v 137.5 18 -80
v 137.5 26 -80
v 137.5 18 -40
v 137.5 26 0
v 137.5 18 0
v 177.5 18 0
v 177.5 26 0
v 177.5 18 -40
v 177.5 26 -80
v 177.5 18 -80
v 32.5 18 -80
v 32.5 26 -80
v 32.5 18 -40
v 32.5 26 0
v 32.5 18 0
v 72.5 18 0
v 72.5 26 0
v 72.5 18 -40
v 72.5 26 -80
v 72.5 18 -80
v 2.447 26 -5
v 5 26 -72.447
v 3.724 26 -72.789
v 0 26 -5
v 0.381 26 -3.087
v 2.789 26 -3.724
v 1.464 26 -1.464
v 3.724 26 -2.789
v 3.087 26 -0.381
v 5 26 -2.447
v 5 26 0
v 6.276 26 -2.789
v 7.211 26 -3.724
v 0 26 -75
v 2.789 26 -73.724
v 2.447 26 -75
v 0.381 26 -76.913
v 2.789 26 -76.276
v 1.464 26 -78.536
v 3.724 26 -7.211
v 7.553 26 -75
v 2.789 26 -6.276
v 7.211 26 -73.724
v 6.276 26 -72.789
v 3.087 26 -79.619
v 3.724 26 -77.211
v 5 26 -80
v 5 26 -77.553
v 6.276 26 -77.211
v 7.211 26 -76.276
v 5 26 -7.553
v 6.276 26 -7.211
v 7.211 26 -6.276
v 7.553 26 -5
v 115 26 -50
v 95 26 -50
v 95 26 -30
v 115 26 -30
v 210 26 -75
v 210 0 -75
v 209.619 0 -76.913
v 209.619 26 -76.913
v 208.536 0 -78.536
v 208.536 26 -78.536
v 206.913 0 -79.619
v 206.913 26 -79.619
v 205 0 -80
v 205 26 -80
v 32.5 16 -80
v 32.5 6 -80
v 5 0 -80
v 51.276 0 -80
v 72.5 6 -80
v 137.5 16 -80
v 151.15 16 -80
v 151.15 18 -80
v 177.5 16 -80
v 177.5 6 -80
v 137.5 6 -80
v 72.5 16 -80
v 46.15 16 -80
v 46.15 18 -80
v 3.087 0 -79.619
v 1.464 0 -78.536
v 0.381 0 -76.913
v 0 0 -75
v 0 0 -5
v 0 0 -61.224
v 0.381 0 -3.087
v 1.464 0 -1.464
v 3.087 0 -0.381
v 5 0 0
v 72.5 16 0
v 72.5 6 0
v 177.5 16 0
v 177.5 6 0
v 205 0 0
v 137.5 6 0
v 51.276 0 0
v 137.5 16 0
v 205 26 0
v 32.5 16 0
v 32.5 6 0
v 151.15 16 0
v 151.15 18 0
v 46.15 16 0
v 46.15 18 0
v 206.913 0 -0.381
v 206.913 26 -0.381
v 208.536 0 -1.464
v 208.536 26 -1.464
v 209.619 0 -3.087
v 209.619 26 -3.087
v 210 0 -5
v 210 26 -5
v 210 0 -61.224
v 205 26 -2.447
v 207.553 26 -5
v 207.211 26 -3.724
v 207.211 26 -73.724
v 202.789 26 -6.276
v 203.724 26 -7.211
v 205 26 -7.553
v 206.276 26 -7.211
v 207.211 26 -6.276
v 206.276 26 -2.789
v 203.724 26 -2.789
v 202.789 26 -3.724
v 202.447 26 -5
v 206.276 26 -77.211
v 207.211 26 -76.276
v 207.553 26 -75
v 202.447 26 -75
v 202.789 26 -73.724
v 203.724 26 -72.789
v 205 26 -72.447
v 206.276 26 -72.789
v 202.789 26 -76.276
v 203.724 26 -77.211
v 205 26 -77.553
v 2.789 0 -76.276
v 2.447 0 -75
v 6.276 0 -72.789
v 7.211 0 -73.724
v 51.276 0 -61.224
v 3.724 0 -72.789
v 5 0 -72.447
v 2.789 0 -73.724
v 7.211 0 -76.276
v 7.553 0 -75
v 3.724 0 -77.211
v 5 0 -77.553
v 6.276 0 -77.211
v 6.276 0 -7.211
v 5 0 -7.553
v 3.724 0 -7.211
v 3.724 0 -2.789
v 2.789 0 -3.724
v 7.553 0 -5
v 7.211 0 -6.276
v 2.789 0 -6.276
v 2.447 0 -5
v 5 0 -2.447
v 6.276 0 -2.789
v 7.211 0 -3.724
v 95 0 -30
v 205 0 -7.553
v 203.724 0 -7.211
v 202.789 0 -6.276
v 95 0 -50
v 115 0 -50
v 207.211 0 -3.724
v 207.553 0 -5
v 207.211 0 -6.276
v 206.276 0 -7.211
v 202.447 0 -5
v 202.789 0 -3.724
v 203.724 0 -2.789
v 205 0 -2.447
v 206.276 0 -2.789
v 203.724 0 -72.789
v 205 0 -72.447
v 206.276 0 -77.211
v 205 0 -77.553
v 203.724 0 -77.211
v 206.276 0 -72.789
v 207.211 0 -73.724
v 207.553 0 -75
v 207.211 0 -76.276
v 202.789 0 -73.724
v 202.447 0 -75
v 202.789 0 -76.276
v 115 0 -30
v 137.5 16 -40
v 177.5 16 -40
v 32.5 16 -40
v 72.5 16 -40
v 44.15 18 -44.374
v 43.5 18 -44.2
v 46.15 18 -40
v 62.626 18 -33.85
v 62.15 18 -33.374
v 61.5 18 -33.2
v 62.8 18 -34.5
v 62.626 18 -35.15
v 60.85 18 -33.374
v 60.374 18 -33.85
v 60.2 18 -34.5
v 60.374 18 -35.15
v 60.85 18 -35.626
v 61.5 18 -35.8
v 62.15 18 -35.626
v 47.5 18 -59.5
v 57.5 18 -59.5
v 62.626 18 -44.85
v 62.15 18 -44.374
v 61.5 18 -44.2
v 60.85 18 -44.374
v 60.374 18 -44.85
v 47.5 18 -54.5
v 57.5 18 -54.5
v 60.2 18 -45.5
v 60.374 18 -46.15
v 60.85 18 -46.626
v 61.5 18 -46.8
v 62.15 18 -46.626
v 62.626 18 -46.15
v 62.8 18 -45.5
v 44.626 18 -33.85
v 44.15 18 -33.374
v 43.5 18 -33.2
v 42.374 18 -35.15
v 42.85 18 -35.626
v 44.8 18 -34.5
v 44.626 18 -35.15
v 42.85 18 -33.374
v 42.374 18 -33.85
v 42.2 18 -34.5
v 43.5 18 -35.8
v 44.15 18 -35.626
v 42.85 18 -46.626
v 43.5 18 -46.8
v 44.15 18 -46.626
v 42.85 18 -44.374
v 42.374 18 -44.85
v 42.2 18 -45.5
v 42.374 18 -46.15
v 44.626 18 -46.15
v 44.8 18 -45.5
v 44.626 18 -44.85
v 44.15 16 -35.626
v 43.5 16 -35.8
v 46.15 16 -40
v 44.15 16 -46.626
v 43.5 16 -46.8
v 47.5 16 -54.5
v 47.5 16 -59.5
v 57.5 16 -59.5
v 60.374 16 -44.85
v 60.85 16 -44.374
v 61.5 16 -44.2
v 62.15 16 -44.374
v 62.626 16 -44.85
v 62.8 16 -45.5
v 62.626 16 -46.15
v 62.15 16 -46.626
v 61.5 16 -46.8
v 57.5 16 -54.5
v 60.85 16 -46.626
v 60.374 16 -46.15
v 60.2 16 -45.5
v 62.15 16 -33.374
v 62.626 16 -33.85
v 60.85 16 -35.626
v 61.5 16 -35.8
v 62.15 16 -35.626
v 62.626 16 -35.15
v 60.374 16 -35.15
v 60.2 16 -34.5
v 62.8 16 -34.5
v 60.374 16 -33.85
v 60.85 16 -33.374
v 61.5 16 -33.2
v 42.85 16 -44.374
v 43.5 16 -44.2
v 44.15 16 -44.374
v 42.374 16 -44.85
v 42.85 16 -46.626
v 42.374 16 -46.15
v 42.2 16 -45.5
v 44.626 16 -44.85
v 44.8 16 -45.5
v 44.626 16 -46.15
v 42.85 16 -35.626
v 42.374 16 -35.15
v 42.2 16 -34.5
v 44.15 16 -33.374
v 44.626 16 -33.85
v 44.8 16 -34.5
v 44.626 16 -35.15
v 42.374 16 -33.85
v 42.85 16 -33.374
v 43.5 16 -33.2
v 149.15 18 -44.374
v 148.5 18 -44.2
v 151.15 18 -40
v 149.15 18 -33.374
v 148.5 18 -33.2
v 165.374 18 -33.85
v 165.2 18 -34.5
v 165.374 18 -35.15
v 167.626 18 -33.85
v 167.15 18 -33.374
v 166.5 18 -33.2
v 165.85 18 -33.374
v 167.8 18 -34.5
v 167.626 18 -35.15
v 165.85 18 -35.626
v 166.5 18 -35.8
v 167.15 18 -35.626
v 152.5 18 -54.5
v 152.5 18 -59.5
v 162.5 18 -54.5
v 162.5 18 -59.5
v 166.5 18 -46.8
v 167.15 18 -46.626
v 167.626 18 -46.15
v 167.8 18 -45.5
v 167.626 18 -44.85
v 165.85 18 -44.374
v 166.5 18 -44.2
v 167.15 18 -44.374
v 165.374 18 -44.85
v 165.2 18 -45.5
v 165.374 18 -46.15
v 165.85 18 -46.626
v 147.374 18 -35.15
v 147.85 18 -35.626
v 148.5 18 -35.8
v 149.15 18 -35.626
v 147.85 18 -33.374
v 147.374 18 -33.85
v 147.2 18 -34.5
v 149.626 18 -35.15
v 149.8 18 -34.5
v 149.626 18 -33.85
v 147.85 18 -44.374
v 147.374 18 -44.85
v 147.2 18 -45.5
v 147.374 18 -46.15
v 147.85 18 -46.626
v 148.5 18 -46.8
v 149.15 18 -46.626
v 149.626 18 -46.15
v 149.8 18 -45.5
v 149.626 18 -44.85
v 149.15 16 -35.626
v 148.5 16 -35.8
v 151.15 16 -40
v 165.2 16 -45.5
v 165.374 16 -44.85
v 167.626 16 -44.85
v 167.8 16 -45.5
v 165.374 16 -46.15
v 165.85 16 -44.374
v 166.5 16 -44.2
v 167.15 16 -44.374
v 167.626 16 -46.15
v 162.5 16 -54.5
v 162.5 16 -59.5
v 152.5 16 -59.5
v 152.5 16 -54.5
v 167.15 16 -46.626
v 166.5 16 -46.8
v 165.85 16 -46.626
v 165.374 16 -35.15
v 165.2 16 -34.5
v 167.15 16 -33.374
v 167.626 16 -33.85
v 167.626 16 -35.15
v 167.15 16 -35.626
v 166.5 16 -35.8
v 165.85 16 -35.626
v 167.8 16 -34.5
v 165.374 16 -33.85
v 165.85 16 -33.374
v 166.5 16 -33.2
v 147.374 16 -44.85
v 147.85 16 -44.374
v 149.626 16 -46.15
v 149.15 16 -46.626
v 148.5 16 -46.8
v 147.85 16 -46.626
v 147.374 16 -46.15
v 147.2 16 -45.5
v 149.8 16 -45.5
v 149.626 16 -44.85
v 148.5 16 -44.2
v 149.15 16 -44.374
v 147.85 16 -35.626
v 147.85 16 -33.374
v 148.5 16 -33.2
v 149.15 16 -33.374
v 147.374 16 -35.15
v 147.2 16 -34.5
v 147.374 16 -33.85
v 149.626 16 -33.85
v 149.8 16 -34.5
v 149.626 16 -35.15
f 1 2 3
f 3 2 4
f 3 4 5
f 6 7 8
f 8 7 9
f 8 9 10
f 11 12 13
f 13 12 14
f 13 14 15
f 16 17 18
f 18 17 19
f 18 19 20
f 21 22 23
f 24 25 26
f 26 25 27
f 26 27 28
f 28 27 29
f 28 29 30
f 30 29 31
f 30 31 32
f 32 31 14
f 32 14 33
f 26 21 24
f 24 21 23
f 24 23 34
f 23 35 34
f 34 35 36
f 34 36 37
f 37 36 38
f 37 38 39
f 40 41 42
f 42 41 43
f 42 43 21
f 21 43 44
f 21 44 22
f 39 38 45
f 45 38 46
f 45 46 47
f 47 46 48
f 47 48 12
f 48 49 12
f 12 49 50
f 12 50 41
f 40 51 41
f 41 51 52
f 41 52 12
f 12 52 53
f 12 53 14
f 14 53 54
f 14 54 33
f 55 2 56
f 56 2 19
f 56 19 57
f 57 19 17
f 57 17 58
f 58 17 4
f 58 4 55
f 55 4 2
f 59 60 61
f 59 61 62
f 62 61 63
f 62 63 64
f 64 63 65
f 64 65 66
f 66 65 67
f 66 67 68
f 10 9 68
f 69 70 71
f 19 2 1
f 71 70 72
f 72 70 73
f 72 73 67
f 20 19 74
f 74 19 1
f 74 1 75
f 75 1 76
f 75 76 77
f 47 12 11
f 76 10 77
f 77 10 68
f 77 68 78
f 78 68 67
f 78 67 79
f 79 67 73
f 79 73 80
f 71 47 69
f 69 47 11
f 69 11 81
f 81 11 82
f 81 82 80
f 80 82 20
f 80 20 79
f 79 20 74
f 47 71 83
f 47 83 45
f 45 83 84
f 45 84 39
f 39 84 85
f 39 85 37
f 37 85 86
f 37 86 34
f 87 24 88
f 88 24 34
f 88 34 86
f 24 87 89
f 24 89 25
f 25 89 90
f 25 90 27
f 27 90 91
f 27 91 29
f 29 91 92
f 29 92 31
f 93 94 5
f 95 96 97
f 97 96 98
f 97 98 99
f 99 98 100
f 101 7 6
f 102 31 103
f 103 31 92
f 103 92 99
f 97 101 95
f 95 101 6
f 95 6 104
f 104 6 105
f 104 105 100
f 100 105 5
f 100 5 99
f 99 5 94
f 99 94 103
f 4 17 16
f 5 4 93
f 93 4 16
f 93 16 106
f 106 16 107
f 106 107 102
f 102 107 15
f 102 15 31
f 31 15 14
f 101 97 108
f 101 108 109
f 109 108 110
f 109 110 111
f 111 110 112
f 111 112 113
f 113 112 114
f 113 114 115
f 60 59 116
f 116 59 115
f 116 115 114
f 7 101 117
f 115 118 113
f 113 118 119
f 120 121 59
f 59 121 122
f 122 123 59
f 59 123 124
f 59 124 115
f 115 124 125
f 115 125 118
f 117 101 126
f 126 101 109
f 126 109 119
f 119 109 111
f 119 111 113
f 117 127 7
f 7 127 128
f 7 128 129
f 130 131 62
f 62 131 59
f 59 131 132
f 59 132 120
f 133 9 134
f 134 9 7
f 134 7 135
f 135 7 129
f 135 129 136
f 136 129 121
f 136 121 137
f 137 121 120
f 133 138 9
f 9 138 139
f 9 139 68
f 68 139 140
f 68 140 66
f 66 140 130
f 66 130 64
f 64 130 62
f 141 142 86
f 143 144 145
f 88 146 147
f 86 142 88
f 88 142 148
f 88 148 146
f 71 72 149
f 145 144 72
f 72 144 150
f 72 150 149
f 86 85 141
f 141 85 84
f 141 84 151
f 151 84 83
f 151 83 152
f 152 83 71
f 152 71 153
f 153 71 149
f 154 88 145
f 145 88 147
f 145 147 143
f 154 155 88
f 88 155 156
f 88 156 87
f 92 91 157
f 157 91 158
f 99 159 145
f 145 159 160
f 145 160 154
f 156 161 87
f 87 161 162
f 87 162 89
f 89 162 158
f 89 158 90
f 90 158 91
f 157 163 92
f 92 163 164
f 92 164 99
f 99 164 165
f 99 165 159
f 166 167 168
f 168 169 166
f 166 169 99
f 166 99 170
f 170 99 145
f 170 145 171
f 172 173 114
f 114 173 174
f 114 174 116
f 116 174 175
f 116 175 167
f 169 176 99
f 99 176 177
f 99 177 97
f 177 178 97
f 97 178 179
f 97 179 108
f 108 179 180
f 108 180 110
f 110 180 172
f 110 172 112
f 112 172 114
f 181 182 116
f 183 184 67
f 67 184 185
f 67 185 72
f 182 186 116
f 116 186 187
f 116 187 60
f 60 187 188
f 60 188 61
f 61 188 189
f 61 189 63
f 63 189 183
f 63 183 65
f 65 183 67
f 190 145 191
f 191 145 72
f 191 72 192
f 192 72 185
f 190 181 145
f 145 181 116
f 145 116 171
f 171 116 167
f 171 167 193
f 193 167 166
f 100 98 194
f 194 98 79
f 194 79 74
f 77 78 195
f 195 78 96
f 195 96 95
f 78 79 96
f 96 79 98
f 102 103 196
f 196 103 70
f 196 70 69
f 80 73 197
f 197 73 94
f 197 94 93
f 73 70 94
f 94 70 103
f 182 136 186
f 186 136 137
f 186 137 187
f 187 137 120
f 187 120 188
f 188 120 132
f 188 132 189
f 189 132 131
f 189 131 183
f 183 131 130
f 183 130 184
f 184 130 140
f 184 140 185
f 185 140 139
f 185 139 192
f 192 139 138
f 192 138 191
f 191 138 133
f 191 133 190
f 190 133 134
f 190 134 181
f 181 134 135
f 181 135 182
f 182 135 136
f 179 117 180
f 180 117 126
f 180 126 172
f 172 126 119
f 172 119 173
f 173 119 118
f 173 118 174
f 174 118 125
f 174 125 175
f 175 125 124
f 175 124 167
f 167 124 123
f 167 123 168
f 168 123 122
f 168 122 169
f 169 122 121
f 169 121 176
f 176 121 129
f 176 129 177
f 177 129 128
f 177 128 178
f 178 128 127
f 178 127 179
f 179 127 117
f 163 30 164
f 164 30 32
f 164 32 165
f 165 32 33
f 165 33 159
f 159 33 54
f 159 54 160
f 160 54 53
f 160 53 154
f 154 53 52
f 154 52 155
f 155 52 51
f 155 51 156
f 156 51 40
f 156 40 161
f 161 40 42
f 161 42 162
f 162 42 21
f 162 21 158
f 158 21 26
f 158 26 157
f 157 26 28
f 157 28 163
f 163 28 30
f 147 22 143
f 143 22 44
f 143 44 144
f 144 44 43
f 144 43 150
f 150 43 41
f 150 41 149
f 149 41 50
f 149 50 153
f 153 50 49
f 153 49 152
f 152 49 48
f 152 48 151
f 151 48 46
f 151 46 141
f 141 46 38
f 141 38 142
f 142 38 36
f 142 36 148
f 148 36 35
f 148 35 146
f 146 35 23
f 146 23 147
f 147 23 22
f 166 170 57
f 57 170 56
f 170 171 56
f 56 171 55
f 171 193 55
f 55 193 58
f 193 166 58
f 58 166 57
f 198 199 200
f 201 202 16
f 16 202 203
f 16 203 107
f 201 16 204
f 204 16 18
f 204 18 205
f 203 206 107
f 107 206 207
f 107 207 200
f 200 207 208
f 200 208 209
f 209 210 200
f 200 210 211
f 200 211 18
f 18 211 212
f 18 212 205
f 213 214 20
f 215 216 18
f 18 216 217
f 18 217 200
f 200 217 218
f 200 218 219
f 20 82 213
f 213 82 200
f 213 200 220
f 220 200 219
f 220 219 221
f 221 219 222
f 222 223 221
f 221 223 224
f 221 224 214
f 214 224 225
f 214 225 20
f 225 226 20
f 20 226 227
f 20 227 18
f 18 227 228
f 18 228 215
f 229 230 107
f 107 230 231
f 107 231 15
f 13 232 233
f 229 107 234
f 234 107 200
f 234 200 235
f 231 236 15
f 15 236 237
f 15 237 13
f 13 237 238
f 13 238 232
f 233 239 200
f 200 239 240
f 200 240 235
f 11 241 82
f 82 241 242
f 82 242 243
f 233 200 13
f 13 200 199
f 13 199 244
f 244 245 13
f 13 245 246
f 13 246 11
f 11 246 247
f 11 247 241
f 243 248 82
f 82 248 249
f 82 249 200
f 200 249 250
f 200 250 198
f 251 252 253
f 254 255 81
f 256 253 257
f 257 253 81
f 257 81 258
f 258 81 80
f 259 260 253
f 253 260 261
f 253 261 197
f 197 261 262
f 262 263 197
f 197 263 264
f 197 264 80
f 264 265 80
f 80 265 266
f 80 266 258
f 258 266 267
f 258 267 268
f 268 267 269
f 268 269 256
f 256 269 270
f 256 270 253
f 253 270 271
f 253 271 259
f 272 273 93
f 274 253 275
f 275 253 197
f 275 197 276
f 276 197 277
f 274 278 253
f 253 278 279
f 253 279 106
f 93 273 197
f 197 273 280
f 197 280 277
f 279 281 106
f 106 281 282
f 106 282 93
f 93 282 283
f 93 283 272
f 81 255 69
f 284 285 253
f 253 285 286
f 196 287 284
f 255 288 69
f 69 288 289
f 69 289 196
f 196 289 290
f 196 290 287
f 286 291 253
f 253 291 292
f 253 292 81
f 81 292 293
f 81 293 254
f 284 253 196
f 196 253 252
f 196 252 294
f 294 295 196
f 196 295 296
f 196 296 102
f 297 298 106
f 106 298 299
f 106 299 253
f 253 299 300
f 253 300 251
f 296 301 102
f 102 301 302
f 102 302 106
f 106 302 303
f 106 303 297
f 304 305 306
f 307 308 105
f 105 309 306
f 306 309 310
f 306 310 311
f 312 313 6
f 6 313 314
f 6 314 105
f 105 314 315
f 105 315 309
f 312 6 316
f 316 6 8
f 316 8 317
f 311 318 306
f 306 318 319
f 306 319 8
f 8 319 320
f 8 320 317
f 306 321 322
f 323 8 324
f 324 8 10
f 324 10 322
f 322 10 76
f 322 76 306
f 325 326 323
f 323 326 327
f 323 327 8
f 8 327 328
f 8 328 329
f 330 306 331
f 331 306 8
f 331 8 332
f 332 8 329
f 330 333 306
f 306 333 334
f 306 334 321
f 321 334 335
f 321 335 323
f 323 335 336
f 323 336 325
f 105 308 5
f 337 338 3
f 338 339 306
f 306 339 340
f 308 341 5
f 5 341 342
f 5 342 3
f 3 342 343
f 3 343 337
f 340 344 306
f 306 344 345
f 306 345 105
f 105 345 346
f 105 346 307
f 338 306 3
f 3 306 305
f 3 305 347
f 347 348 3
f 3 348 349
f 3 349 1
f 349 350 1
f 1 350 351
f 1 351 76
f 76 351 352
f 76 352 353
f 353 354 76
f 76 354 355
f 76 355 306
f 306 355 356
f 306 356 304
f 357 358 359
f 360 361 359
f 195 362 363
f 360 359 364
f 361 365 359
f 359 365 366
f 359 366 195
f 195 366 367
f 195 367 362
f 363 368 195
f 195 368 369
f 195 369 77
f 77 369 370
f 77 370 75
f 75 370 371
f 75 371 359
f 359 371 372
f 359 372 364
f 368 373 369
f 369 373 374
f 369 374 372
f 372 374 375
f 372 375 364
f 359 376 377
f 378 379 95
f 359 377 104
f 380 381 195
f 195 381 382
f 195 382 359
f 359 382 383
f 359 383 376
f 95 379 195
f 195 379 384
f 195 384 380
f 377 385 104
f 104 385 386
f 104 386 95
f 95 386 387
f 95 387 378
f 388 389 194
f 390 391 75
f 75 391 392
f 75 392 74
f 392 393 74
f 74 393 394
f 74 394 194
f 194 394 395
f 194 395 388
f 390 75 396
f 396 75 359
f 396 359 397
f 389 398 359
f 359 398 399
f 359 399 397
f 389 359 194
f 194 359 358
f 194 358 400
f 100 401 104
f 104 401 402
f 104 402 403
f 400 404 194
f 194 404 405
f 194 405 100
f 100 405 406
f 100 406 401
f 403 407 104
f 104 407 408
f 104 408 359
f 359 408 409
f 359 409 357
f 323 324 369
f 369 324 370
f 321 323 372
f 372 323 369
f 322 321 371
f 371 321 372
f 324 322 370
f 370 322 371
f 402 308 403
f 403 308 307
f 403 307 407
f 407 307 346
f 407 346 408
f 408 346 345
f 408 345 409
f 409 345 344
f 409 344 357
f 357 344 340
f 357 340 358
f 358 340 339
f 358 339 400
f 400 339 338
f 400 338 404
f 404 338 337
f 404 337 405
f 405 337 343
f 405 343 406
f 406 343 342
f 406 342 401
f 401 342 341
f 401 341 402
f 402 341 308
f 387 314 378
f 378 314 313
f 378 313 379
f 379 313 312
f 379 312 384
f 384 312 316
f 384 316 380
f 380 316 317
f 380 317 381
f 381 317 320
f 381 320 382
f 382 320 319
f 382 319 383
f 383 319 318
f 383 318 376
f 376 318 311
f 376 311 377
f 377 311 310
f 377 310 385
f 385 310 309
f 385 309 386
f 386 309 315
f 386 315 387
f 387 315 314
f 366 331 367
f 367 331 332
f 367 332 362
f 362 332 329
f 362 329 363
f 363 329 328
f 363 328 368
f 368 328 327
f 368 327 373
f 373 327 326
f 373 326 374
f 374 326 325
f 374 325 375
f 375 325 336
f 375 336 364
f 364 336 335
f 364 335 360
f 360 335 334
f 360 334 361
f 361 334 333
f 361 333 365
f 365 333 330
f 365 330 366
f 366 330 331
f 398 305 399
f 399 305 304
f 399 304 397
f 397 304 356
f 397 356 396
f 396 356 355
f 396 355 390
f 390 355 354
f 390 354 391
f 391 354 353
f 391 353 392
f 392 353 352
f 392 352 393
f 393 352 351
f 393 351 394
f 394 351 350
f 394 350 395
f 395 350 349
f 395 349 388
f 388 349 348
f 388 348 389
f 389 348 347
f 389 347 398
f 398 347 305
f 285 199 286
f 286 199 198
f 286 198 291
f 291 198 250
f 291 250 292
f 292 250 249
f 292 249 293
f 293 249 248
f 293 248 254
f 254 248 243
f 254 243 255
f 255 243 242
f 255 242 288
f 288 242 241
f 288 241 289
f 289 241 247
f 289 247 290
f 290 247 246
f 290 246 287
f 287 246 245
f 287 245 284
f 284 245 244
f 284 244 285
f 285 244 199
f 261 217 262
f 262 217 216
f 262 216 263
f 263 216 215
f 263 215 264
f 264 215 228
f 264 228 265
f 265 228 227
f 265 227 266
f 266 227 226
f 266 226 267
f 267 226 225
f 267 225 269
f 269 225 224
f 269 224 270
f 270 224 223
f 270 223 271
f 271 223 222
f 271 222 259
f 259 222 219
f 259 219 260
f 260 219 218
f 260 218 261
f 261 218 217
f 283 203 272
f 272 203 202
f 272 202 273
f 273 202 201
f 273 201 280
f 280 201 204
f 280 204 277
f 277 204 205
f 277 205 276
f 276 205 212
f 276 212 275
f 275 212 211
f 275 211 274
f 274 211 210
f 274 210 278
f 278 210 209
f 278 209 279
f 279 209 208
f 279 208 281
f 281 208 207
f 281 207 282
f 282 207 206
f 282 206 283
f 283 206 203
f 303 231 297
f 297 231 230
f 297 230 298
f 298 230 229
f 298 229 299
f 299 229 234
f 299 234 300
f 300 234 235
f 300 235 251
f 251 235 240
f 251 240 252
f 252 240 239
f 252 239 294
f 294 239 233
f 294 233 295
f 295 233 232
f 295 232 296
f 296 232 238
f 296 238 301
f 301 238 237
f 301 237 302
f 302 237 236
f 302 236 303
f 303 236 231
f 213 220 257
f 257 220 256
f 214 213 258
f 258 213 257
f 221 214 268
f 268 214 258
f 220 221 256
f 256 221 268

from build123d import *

# Parameters (mm, degrees)
BOSS_EXTRUDE1_DEPTH     = 26
SKETCH2_W               = 40
SKETCH2_H               = 20
CUT_EXTRUDE1_DEPTH      = 227.221130755
F_1_4_20_TAPPED_HOLE1_D = 5.1054
SKETCH4_W               = 20
SKETCH4_H               = 20
CUT_EXTRUDE2_DEPTH      = 227.221130755
BOSS_EXTRUDE2_DEPTH     = 80
SKETCH6_R               = 1.3
SKETCH6_W               = 10
SKETCH6_H               = 5
CUT_EXTRUDE3_DEPTH      = 10


with BuildPart() as part:
    # Sketch1 → Boss-Extrude1 (new body)
    with BuildSketch(Plane(origin=(0, 0, 0), x_dir=(1, 0, 0), z_dir=(0, 1, 0))):
        with BuildLine():
            Line((5, 0), (205, 0))
            ThreePointArc((205, 0), (208.535533906, 1.464466094), (210, 5))
            Line((210, 5), (210, 75))
            ThreePointArc((210, 75), (208.535533906, 78.535533906), (205, 80))
            Line((205, 80), (5, 80))
            ThreePointArc((5, 80), (1.464466094, 78.535533906), (0, 75))
            Line((0, 75), (0, 5))
            ThreePointArc((0, 5), (1.464466094, 1.464466094), (5, 0))
        make_face()
    extrude(amount=BOSS_EXTRUDE1_DEPTH)

    # Sketch2 → Cut-Extrude1 (cut, through all)
    with BuildSketch(Plane.XY):
        with Locations((52.5, 16)):
            Rectangle(SKETCH2_W, SKETCH2_H)
        with Locations((157.5, 16)):
            Rectangle(SKETCH2_W, SKETCH2_H)
    extrude(amount=-CUT_EXTRUDE1_DEPTH, mode=Mode.SUBTRACT)

    # 1/4-20 Tapped Hole1 (through all)
    with Locations(Plane(origin=(5, 26, -75), x_dir=(0, 0, 1), z_dir=(0, 1, 0))):
        with Locations((0, 0), (70, 0), (70, 200), (0, 200)):
            Hole(F_1_4_20_TAPPED_HOLE1_D / 2)

    # Sketch4 → Cut-Extrude2 (cut, through all)
    with BuildSketch(Plane(origin=(0, 26, 0), x_dir=(1, 0, 0), z_dir=(0, 1, 0))):
        with Locations((105, 40)):
            Rectangle(SKETCH4_W, SKETCH4_H)
    extrude(amount=-CUT_EXTRUDE2_DEPTH, mode=Mode.SUBTRACT)

    # Sketch5 → Boss-Extrude2 (add)
    with BuildSketch(Plane.XY):
        Polygon((32.5, 18), (27.5, 18), (27.5, 13), (29.5, 13), (29.5, 16), (32.5, 16), (72.5, 16), (75.5, 16), (75.5, 13), (77.5, 13), (77.5, 18), (72.5, 18), align=None)
        Polygon((134.5, 13), (134.5, 16), (137.5, 16), (177.5, 16), (180.5, 16), (180.5, 13), (182.5, 13), (182.5, 18), (177.5, 18), (137.5, 18), (132.5, 18), (132.5, 13), align=None)
    extrude(amount=-BOSS_EXTRUDE2_DEPTH)

    # Sketch6 → Cut-Extrude3 (cut)
    with BuildSketch(Plane(origin=(0, 18, 0), x_dir=(1, 0, 0), z_dir=(0, 1, 0))):
        with Locations(Location((43.5, 45.5, 0), (0, 0, 270))):
            Circle(SKETCH6_R)
        with Locations(Location((43.5, 34.5, 0), (0, 0, 90))):
            Circle(SKETCH6_R)
        with Locations(Location((61.5, 34.5, 0), (0, 0, 270))):
            Circle(SKETCH6_R)
        with Locations(Location((61.5, 45.5, 0), (0, 0, 90))):
            Circle(SKETCH6_R)
        with Locations(Location((148.5, 34.5, 0), (0, 0, 90))):
            Circle(SKETCH6_R)
        with Locations(Location((148.5, 45.5, 0), (0, 0, 270))):
            Circle(SKETCH6_R)
        with Locations(Location((166.5, 45.5, 0), (0, 0, 90))):
            Circle(SKETCH6_R)
        with Locations(Location((166.5, 34.5, 0), (0, 0, 270))):
            Circle(SKETCH6_R)
        with Locations((157.5, 57)):
            Rectangle(SKETCH6_W, SKETCH6_H)
        with Locations((52.5, 57)):
            Rectangle(SKETCH6_W, SKETCH6_H)
    extrude(amount=-CUT_EXTRUDE3_DEPTH, mode=Mode.SUBTRACT)


solid = part.part
